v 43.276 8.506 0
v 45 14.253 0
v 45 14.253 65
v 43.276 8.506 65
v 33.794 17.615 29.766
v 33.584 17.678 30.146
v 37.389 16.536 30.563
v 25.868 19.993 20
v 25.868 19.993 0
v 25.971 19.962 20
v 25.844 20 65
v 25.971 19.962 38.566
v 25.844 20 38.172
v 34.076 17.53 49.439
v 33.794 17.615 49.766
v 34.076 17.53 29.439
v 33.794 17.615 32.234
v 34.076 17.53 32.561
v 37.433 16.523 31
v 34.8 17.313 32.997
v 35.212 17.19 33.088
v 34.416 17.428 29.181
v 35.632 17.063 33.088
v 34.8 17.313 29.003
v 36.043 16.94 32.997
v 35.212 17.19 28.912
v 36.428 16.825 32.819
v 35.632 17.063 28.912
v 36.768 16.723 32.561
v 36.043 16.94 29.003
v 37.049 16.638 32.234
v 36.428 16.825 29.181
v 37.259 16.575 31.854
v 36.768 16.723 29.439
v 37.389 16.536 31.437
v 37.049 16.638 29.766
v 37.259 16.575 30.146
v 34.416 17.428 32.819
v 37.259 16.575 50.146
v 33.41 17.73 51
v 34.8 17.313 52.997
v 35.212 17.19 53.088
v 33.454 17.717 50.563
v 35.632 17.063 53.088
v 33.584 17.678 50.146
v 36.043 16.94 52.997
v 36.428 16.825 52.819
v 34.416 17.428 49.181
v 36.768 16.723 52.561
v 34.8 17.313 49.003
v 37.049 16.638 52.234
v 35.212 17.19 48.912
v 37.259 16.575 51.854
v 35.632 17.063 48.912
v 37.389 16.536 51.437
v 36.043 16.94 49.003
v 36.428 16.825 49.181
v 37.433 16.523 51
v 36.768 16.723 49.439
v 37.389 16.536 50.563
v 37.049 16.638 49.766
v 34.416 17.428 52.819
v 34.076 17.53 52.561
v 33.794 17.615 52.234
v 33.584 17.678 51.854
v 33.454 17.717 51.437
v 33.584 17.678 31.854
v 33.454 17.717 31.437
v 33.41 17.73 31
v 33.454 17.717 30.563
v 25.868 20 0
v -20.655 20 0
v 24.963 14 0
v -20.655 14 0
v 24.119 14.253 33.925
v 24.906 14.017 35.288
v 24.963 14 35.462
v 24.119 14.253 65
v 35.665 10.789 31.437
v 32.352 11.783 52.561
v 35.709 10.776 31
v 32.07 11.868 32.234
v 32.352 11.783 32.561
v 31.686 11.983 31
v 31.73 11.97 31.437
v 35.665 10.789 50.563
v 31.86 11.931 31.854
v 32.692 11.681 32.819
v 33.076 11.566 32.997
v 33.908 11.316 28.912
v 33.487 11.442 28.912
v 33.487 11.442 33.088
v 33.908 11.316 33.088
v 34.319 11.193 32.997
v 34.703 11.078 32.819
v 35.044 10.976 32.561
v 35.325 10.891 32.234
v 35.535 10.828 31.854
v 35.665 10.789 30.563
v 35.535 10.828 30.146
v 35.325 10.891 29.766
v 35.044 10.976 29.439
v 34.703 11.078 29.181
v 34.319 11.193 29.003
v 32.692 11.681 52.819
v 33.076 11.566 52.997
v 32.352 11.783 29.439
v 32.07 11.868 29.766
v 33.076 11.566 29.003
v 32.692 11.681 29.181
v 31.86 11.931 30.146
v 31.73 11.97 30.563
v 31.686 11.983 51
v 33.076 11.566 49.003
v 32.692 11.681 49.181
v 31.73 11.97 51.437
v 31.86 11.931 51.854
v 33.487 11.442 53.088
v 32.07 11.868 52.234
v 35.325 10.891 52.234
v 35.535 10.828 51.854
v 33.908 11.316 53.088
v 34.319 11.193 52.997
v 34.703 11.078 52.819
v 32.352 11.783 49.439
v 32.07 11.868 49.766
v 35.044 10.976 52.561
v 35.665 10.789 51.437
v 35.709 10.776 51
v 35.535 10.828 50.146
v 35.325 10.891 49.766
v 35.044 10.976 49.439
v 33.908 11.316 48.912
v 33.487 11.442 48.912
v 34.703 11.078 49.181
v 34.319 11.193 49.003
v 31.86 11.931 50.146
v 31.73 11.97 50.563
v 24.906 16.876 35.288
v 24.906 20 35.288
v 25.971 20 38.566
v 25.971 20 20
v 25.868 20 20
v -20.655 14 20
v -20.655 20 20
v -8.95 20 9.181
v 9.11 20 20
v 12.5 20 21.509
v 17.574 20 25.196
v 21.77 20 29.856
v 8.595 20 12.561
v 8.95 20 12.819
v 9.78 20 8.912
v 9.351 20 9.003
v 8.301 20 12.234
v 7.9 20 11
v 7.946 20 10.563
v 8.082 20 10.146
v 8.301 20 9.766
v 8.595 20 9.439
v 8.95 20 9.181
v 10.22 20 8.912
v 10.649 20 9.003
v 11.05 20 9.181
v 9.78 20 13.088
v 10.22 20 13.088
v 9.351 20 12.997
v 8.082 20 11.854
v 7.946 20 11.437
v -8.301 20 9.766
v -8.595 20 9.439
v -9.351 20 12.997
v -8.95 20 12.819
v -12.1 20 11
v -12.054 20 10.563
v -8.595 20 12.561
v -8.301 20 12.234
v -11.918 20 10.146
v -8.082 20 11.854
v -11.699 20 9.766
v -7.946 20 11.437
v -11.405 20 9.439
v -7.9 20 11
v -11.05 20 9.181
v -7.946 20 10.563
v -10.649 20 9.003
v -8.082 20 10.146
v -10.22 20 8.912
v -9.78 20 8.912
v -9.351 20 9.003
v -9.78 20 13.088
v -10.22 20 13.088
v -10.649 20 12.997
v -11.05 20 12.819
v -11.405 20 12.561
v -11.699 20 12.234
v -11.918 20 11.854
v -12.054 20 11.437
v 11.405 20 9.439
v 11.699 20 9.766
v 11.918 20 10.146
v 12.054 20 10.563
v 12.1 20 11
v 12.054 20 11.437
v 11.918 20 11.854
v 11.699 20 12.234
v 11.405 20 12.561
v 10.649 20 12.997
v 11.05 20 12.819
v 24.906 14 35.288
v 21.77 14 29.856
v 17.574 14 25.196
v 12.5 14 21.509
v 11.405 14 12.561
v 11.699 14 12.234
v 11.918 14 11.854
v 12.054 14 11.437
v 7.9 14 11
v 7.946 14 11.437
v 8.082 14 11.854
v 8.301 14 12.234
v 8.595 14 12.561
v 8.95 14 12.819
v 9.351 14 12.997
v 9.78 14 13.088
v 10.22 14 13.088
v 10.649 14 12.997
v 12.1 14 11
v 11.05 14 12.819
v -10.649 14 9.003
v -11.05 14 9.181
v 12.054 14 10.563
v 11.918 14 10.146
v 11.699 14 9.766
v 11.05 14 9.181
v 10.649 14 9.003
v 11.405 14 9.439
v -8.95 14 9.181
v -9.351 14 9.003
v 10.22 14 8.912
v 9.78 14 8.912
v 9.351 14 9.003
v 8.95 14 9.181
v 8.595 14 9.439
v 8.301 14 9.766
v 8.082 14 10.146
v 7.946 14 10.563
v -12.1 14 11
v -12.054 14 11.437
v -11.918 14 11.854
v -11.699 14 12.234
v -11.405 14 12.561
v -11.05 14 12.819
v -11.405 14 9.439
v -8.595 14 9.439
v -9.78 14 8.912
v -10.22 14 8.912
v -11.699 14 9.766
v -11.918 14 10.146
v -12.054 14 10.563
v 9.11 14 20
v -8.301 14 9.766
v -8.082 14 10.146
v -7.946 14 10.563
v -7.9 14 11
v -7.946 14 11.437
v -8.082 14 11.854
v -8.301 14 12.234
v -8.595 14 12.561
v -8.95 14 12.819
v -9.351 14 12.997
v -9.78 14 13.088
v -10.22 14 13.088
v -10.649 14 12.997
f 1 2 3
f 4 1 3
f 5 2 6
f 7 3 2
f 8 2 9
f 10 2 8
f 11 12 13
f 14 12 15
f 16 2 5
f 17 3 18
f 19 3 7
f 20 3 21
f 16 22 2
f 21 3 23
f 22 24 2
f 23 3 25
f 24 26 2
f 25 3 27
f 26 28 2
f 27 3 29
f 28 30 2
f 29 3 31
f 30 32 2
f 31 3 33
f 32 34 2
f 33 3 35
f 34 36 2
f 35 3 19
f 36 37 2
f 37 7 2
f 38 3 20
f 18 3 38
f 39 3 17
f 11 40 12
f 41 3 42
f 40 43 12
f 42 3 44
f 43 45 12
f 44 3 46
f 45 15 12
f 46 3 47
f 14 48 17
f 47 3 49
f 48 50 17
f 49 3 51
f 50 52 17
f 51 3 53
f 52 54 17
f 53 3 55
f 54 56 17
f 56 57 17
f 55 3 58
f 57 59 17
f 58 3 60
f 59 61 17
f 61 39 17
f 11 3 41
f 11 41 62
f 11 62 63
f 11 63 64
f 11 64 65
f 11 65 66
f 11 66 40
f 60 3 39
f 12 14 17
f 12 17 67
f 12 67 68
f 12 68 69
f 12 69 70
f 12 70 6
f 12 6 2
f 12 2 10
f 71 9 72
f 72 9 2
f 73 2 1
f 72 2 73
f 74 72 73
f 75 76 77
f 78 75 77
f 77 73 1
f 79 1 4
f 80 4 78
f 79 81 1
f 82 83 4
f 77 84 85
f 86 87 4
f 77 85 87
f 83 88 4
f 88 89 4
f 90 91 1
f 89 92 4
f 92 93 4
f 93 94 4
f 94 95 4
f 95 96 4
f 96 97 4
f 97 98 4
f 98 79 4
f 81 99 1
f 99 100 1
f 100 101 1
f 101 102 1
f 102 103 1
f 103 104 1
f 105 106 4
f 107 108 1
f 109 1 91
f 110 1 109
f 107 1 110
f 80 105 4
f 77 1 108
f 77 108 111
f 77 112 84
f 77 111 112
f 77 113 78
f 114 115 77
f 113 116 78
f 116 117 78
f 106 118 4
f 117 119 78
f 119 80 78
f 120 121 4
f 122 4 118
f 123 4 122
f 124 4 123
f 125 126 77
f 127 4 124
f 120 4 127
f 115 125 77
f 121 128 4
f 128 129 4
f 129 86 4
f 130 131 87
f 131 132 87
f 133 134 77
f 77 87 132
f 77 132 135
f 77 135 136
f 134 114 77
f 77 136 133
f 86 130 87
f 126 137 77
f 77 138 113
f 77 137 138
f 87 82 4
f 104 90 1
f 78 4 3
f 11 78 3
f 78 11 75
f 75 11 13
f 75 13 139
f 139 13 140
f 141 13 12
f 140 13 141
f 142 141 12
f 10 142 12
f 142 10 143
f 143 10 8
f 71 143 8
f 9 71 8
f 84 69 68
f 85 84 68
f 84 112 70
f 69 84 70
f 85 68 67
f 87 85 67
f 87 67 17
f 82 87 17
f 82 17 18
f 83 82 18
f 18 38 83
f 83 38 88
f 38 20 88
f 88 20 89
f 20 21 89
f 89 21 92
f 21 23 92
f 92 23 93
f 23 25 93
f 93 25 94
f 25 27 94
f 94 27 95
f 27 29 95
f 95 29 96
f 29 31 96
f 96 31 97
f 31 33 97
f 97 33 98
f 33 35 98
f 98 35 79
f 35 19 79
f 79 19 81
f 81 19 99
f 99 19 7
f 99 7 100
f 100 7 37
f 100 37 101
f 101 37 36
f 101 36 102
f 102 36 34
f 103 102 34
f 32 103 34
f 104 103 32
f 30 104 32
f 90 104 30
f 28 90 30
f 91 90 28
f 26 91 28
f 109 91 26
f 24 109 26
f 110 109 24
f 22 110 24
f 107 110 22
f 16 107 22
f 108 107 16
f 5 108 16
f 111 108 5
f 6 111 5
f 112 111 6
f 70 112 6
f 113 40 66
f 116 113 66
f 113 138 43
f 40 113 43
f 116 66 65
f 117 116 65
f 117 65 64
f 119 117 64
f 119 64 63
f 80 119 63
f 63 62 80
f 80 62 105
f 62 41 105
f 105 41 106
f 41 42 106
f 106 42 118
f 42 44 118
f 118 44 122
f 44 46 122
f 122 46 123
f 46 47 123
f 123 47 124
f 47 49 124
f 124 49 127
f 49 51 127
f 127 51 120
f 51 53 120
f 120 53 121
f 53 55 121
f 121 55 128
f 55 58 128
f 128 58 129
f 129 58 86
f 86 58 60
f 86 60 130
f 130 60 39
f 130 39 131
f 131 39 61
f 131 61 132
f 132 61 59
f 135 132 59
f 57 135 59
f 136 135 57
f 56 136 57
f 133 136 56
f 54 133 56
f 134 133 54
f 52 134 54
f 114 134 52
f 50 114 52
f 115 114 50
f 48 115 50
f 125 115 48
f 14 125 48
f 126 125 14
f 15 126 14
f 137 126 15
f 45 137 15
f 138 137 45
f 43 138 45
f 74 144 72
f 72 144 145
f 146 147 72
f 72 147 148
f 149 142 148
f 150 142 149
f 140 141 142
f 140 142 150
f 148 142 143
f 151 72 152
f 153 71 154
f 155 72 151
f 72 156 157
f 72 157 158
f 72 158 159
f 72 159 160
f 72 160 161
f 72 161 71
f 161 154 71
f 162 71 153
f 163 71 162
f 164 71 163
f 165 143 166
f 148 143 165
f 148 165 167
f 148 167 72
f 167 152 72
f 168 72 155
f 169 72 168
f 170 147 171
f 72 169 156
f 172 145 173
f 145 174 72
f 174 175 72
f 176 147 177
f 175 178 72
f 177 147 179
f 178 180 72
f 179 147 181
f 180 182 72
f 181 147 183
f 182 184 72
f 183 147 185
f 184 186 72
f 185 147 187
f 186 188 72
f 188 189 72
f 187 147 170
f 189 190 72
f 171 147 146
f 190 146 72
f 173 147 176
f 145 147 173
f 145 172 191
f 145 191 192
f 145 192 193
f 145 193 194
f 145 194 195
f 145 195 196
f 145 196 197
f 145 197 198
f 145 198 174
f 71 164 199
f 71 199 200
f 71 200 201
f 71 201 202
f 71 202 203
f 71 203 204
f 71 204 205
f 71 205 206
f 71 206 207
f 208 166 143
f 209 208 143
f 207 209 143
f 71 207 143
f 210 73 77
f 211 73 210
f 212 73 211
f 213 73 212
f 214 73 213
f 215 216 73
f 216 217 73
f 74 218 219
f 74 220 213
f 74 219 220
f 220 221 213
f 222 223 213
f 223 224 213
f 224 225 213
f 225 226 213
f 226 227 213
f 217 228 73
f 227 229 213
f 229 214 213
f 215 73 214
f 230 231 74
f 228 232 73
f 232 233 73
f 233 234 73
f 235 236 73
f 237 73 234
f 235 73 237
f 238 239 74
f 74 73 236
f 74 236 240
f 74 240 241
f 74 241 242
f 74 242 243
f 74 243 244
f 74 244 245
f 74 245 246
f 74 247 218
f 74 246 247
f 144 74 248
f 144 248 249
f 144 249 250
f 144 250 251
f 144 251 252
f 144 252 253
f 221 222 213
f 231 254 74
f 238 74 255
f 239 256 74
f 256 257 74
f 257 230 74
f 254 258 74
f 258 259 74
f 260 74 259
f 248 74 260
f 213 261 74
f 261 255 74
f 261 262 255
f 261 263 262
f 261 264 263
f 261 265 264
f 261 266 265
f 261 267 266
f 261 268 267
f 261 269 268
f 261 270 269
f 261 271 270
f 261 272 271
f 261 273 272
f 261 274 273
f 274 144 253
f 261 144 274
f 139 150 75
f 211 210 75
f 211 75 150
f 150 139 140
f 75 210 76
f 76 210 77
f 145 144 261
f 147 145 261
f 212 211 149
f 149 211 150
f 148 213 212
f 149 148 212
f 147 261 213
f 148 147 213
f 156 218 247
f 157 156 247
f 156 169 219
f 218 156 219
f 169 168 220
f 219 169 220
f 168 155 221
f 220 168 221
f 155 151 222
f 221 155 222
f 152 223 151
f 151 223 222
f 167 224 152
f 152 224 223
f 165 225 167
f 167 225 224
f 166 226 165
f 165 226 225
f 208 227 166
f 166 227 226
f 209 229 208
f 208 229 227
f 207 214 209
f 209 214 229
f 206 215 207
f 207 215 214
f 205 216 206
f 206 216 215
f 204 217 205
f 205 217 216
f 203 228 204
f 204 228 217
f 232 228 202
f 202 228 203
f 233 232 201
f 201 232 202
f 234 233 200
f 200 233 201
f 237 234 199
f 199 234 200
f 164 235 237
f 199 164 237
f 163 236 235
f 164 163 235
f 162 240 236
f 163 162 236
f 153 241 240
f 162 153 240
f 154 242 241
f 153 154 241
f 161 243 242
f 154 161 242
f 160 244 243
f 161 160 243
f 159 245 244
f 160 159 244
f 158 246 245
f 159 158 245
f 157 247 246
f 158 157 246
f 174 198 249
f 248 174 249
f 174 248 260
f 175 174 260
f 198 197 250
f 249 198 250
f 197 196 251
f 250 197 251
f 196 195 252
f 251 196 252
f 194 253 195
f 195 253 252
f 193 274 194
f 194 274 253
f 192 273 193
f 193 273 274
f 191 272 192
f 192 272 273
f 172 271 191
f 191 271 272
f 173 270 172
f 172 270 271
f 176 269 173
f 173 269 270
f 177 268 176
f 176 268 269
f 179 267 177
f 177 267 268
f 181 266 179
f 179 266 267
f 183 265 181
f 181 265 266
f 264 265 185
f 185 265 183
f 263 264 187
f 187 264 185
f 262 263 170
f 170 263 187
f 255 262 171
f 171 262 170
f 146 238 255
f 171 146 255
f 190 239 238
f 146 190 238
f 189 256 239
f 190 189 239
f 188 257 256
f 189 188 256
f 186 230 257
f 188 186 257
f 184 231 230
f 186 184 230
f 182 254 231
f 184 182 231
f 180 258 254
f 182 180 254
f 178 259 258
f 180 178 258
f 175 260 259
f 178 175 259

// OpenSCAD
// file: functions.scad
// PRUSA Mendel  
// Functions used in many files
// GNU GPL v2
// Josef Průša
// josefprusa@me.com
// prusadjs.cz
// http://www.reprap.org/wiki/Prusa_Mendel
// http://github.com/prusajr/PrusaMendel

module nut(d,h,horizontal=true){
cornerdiameter =  (d / 2) / cos (180 / 6);
cylinder(h = h, r = cornerdiameter, $fn = 6);
if(horizontal){
for(i = [1:6]){
	rotate([0,0,60*i]) translate([-cornerdiameter-0.2,0,0]) rotate([0,0,-45]) cube(size = [2,2,h]);
}}
}

// By nophead
module polyhole(d,h) {
    n = max(round(2 * d),3);
    rotate([0,0,180])
        cylinder(h = h, r = (d / 2) / cos (180 / n), $fn = n);
}

module roundcorner(diameter){
	difference(){
		cube(size = [diameter,diameter,99], center = false);
		translate(v = [diameter, diameter, 0]) cylinder(h = 100, r=diameter, center=true);
	}
}
// file: metric.scad
// PRUSA Mendel  
// Default metric sizes
// GNU GPL v2
// Josef Průša
// josefprusa@me.com
// prusadjs.cz
// http://www.reprap.org/wiki/Prusa_Mendel
// http://github.com/prusajr/PrusaMendel

// DONT CHANGE THIS FILE! ALTER VALUES IN CONFIGURATION.SCAD INSTEAD

// RODS

threaded_rod_diameter = 8;
threaded_rod_diameter_horizontal = 8;
smooth_bar_diameter = 8;
smooth_bar_diameter_horizontal = 8;

// Nuts and bolts

m8_diameter = 8;
m8_nut_diameter = 14.5;

m4_diameter = 4;
m4_nut_diameter = 7.5;

m3_diameter = 3;
m3_nut_diameter = 5;

// Bushing holder

bushing_core_diameter = smooth_bar_diameter;
bushing_material_thickness = 1;

// Motors

motor_shaft = 5.1;
// file: configuration.scad
// PRUSA Mendel  
// Configuration file
// GNU GPL v2
// Josef Průša
// josefprusa@me.com
// prusadjs.cz
// http://www.reprap.org/wiki/Prusa_Mendel
// http://github.com/prusajr/PrusaMendel

// PLEASE SELECT ONE OF THE CONFIGURATIONS BELOW
// BY UN-COMMENTING IT

// Uncomment for metric settings
// METRIC METRIC METRIC METRIC METRIC METRIC METRIC METRIC 

include <metric.scad>;

// Uncomment for imperial settings
// IMPERIAL IMPERIAL IMPERIAL IMPERIAL IMPERIAL IMPERIAL IMPERIAL 

//include <sae.scad>;

//thin_wall = 3;
// LM8UU
//linear = false;

// override settings by customizing below
// CUSTOM CUSTOM CUSTOM CUSTOM CUSTOM CUSTOM CUSTOM CUSTOM CUSTOM

threaded_rod_diameter = 8.2;
threaded_rod_diameter_horizontal = 8.2;
smooth_bar_diameter = 8.3;
smooth_bar_diameter_horizontal = 8.3;

// Nuts and bolts

m8_diameter = 8.3;
m8_nut_diameter = 15;

m4_diameter = 4.2;
m4_nut_diameter = 9;

m3_diameter = 3.3;
m3_nut_diameter = 5.8;

///counted stuff
m3_nut_diameter_bigger = ((m3_nut_diameter  / 2) / cos (180 / 6))*2;

// functions 
include <functions.scad>
// main file
// F. Beachler, Longevity Software LLC. d.b.a. Terawatt Industries

include <configuration.scad>;

thickness = 6;   // wall and base thickness
slottabs = 2;    // Slot depth (2 is normal) -1 to remove tabs
holes = m4_diameter;  //m3, m4 or m5=5.1
o = 0.01;						// overlap amount for error-free STLs

$fn=30;

for (x = [0])
{
//	translate([(x*25), 0, 0]) rotate([90, 0, 0]) prism60inside_top_armor(thickness, slottabs, holes, false);
	translate([25, 20, 0]) rotate([90, 0, 0]) mirror([1, 0, 0]) prism60inside_top_armor(thickness, slottabs, holes, false);
}

module prism60inside_top(th,st,hs)
{
	difference() {
		union() {
			translate([-6 * sin(14.5) + 0.5, -6, 0]) cube([20, 40 + 6, 6]);
			rotate([90, -14.7, 0]) cube([20, 40, 6]);
		}
		translate([10, 5 + th, -o]) cylinder(r=hs / 2,h=th + 2*o);
		translate([10, 25 + th, -o]) cylinder(r=hs / 2,h=th + 2*o);
		rotate([90, -14.7, 0]) {
			translate([10, 10 + th, -o]) cylinder(r=hs / 2,h=th + 2*o);
			translate([10, 30 + th, -o]) cylinder(r=hs / 2,h=th + 2*o);
		}
	}
}

module prism60inside_top_armor(th, st, hs, supp)
{
	difference() {
		union() {
			translate([-6 * cos(90 - 14.7 / 2) - 0.1, 0, 0]) cube([45 + 6 * cos(90 - 14.7), 20, 6]);
			translate([-20, 0, 20 * sin(16.7)]) {
				rotate([0, 16.7, 0]) {
					difference() {
						cube([20, 20 + 45, 6]);
						translate([10, 25 + th, -5]) cylinder(r=hs / 2,h = 20 + 2*o);
						translate([10, 45 + th, -5]) cylinder(r=hs / 2,h = 20 + 2*o);
					}
				}
			}
			difference() {
				translate([-6 * cos(90 - 16.7 / 2) - 0.1, 20, 0]) cube([20, 20, 6]);
				translate([27.5, 47.5 - o, -o]) cylinder(r=30,h=10 + 2*o);
			}
		}
		translate([15, 5 + th, -o]) cylinder(r=hs / 2,h=th + 2*o);
		translate([35, 5 + th, -o]) cylinder(r=hs / 2,h=th + 2*o);
	}
	if (supp) {
		for (x = [0, 5, 10, 15, 20, 25, 30, 35, 40, 45, 50, 55, 60, 63]) {
			translate([-20, x, -0.1]) cube([19, 1, 5]);
		}
	}
}
